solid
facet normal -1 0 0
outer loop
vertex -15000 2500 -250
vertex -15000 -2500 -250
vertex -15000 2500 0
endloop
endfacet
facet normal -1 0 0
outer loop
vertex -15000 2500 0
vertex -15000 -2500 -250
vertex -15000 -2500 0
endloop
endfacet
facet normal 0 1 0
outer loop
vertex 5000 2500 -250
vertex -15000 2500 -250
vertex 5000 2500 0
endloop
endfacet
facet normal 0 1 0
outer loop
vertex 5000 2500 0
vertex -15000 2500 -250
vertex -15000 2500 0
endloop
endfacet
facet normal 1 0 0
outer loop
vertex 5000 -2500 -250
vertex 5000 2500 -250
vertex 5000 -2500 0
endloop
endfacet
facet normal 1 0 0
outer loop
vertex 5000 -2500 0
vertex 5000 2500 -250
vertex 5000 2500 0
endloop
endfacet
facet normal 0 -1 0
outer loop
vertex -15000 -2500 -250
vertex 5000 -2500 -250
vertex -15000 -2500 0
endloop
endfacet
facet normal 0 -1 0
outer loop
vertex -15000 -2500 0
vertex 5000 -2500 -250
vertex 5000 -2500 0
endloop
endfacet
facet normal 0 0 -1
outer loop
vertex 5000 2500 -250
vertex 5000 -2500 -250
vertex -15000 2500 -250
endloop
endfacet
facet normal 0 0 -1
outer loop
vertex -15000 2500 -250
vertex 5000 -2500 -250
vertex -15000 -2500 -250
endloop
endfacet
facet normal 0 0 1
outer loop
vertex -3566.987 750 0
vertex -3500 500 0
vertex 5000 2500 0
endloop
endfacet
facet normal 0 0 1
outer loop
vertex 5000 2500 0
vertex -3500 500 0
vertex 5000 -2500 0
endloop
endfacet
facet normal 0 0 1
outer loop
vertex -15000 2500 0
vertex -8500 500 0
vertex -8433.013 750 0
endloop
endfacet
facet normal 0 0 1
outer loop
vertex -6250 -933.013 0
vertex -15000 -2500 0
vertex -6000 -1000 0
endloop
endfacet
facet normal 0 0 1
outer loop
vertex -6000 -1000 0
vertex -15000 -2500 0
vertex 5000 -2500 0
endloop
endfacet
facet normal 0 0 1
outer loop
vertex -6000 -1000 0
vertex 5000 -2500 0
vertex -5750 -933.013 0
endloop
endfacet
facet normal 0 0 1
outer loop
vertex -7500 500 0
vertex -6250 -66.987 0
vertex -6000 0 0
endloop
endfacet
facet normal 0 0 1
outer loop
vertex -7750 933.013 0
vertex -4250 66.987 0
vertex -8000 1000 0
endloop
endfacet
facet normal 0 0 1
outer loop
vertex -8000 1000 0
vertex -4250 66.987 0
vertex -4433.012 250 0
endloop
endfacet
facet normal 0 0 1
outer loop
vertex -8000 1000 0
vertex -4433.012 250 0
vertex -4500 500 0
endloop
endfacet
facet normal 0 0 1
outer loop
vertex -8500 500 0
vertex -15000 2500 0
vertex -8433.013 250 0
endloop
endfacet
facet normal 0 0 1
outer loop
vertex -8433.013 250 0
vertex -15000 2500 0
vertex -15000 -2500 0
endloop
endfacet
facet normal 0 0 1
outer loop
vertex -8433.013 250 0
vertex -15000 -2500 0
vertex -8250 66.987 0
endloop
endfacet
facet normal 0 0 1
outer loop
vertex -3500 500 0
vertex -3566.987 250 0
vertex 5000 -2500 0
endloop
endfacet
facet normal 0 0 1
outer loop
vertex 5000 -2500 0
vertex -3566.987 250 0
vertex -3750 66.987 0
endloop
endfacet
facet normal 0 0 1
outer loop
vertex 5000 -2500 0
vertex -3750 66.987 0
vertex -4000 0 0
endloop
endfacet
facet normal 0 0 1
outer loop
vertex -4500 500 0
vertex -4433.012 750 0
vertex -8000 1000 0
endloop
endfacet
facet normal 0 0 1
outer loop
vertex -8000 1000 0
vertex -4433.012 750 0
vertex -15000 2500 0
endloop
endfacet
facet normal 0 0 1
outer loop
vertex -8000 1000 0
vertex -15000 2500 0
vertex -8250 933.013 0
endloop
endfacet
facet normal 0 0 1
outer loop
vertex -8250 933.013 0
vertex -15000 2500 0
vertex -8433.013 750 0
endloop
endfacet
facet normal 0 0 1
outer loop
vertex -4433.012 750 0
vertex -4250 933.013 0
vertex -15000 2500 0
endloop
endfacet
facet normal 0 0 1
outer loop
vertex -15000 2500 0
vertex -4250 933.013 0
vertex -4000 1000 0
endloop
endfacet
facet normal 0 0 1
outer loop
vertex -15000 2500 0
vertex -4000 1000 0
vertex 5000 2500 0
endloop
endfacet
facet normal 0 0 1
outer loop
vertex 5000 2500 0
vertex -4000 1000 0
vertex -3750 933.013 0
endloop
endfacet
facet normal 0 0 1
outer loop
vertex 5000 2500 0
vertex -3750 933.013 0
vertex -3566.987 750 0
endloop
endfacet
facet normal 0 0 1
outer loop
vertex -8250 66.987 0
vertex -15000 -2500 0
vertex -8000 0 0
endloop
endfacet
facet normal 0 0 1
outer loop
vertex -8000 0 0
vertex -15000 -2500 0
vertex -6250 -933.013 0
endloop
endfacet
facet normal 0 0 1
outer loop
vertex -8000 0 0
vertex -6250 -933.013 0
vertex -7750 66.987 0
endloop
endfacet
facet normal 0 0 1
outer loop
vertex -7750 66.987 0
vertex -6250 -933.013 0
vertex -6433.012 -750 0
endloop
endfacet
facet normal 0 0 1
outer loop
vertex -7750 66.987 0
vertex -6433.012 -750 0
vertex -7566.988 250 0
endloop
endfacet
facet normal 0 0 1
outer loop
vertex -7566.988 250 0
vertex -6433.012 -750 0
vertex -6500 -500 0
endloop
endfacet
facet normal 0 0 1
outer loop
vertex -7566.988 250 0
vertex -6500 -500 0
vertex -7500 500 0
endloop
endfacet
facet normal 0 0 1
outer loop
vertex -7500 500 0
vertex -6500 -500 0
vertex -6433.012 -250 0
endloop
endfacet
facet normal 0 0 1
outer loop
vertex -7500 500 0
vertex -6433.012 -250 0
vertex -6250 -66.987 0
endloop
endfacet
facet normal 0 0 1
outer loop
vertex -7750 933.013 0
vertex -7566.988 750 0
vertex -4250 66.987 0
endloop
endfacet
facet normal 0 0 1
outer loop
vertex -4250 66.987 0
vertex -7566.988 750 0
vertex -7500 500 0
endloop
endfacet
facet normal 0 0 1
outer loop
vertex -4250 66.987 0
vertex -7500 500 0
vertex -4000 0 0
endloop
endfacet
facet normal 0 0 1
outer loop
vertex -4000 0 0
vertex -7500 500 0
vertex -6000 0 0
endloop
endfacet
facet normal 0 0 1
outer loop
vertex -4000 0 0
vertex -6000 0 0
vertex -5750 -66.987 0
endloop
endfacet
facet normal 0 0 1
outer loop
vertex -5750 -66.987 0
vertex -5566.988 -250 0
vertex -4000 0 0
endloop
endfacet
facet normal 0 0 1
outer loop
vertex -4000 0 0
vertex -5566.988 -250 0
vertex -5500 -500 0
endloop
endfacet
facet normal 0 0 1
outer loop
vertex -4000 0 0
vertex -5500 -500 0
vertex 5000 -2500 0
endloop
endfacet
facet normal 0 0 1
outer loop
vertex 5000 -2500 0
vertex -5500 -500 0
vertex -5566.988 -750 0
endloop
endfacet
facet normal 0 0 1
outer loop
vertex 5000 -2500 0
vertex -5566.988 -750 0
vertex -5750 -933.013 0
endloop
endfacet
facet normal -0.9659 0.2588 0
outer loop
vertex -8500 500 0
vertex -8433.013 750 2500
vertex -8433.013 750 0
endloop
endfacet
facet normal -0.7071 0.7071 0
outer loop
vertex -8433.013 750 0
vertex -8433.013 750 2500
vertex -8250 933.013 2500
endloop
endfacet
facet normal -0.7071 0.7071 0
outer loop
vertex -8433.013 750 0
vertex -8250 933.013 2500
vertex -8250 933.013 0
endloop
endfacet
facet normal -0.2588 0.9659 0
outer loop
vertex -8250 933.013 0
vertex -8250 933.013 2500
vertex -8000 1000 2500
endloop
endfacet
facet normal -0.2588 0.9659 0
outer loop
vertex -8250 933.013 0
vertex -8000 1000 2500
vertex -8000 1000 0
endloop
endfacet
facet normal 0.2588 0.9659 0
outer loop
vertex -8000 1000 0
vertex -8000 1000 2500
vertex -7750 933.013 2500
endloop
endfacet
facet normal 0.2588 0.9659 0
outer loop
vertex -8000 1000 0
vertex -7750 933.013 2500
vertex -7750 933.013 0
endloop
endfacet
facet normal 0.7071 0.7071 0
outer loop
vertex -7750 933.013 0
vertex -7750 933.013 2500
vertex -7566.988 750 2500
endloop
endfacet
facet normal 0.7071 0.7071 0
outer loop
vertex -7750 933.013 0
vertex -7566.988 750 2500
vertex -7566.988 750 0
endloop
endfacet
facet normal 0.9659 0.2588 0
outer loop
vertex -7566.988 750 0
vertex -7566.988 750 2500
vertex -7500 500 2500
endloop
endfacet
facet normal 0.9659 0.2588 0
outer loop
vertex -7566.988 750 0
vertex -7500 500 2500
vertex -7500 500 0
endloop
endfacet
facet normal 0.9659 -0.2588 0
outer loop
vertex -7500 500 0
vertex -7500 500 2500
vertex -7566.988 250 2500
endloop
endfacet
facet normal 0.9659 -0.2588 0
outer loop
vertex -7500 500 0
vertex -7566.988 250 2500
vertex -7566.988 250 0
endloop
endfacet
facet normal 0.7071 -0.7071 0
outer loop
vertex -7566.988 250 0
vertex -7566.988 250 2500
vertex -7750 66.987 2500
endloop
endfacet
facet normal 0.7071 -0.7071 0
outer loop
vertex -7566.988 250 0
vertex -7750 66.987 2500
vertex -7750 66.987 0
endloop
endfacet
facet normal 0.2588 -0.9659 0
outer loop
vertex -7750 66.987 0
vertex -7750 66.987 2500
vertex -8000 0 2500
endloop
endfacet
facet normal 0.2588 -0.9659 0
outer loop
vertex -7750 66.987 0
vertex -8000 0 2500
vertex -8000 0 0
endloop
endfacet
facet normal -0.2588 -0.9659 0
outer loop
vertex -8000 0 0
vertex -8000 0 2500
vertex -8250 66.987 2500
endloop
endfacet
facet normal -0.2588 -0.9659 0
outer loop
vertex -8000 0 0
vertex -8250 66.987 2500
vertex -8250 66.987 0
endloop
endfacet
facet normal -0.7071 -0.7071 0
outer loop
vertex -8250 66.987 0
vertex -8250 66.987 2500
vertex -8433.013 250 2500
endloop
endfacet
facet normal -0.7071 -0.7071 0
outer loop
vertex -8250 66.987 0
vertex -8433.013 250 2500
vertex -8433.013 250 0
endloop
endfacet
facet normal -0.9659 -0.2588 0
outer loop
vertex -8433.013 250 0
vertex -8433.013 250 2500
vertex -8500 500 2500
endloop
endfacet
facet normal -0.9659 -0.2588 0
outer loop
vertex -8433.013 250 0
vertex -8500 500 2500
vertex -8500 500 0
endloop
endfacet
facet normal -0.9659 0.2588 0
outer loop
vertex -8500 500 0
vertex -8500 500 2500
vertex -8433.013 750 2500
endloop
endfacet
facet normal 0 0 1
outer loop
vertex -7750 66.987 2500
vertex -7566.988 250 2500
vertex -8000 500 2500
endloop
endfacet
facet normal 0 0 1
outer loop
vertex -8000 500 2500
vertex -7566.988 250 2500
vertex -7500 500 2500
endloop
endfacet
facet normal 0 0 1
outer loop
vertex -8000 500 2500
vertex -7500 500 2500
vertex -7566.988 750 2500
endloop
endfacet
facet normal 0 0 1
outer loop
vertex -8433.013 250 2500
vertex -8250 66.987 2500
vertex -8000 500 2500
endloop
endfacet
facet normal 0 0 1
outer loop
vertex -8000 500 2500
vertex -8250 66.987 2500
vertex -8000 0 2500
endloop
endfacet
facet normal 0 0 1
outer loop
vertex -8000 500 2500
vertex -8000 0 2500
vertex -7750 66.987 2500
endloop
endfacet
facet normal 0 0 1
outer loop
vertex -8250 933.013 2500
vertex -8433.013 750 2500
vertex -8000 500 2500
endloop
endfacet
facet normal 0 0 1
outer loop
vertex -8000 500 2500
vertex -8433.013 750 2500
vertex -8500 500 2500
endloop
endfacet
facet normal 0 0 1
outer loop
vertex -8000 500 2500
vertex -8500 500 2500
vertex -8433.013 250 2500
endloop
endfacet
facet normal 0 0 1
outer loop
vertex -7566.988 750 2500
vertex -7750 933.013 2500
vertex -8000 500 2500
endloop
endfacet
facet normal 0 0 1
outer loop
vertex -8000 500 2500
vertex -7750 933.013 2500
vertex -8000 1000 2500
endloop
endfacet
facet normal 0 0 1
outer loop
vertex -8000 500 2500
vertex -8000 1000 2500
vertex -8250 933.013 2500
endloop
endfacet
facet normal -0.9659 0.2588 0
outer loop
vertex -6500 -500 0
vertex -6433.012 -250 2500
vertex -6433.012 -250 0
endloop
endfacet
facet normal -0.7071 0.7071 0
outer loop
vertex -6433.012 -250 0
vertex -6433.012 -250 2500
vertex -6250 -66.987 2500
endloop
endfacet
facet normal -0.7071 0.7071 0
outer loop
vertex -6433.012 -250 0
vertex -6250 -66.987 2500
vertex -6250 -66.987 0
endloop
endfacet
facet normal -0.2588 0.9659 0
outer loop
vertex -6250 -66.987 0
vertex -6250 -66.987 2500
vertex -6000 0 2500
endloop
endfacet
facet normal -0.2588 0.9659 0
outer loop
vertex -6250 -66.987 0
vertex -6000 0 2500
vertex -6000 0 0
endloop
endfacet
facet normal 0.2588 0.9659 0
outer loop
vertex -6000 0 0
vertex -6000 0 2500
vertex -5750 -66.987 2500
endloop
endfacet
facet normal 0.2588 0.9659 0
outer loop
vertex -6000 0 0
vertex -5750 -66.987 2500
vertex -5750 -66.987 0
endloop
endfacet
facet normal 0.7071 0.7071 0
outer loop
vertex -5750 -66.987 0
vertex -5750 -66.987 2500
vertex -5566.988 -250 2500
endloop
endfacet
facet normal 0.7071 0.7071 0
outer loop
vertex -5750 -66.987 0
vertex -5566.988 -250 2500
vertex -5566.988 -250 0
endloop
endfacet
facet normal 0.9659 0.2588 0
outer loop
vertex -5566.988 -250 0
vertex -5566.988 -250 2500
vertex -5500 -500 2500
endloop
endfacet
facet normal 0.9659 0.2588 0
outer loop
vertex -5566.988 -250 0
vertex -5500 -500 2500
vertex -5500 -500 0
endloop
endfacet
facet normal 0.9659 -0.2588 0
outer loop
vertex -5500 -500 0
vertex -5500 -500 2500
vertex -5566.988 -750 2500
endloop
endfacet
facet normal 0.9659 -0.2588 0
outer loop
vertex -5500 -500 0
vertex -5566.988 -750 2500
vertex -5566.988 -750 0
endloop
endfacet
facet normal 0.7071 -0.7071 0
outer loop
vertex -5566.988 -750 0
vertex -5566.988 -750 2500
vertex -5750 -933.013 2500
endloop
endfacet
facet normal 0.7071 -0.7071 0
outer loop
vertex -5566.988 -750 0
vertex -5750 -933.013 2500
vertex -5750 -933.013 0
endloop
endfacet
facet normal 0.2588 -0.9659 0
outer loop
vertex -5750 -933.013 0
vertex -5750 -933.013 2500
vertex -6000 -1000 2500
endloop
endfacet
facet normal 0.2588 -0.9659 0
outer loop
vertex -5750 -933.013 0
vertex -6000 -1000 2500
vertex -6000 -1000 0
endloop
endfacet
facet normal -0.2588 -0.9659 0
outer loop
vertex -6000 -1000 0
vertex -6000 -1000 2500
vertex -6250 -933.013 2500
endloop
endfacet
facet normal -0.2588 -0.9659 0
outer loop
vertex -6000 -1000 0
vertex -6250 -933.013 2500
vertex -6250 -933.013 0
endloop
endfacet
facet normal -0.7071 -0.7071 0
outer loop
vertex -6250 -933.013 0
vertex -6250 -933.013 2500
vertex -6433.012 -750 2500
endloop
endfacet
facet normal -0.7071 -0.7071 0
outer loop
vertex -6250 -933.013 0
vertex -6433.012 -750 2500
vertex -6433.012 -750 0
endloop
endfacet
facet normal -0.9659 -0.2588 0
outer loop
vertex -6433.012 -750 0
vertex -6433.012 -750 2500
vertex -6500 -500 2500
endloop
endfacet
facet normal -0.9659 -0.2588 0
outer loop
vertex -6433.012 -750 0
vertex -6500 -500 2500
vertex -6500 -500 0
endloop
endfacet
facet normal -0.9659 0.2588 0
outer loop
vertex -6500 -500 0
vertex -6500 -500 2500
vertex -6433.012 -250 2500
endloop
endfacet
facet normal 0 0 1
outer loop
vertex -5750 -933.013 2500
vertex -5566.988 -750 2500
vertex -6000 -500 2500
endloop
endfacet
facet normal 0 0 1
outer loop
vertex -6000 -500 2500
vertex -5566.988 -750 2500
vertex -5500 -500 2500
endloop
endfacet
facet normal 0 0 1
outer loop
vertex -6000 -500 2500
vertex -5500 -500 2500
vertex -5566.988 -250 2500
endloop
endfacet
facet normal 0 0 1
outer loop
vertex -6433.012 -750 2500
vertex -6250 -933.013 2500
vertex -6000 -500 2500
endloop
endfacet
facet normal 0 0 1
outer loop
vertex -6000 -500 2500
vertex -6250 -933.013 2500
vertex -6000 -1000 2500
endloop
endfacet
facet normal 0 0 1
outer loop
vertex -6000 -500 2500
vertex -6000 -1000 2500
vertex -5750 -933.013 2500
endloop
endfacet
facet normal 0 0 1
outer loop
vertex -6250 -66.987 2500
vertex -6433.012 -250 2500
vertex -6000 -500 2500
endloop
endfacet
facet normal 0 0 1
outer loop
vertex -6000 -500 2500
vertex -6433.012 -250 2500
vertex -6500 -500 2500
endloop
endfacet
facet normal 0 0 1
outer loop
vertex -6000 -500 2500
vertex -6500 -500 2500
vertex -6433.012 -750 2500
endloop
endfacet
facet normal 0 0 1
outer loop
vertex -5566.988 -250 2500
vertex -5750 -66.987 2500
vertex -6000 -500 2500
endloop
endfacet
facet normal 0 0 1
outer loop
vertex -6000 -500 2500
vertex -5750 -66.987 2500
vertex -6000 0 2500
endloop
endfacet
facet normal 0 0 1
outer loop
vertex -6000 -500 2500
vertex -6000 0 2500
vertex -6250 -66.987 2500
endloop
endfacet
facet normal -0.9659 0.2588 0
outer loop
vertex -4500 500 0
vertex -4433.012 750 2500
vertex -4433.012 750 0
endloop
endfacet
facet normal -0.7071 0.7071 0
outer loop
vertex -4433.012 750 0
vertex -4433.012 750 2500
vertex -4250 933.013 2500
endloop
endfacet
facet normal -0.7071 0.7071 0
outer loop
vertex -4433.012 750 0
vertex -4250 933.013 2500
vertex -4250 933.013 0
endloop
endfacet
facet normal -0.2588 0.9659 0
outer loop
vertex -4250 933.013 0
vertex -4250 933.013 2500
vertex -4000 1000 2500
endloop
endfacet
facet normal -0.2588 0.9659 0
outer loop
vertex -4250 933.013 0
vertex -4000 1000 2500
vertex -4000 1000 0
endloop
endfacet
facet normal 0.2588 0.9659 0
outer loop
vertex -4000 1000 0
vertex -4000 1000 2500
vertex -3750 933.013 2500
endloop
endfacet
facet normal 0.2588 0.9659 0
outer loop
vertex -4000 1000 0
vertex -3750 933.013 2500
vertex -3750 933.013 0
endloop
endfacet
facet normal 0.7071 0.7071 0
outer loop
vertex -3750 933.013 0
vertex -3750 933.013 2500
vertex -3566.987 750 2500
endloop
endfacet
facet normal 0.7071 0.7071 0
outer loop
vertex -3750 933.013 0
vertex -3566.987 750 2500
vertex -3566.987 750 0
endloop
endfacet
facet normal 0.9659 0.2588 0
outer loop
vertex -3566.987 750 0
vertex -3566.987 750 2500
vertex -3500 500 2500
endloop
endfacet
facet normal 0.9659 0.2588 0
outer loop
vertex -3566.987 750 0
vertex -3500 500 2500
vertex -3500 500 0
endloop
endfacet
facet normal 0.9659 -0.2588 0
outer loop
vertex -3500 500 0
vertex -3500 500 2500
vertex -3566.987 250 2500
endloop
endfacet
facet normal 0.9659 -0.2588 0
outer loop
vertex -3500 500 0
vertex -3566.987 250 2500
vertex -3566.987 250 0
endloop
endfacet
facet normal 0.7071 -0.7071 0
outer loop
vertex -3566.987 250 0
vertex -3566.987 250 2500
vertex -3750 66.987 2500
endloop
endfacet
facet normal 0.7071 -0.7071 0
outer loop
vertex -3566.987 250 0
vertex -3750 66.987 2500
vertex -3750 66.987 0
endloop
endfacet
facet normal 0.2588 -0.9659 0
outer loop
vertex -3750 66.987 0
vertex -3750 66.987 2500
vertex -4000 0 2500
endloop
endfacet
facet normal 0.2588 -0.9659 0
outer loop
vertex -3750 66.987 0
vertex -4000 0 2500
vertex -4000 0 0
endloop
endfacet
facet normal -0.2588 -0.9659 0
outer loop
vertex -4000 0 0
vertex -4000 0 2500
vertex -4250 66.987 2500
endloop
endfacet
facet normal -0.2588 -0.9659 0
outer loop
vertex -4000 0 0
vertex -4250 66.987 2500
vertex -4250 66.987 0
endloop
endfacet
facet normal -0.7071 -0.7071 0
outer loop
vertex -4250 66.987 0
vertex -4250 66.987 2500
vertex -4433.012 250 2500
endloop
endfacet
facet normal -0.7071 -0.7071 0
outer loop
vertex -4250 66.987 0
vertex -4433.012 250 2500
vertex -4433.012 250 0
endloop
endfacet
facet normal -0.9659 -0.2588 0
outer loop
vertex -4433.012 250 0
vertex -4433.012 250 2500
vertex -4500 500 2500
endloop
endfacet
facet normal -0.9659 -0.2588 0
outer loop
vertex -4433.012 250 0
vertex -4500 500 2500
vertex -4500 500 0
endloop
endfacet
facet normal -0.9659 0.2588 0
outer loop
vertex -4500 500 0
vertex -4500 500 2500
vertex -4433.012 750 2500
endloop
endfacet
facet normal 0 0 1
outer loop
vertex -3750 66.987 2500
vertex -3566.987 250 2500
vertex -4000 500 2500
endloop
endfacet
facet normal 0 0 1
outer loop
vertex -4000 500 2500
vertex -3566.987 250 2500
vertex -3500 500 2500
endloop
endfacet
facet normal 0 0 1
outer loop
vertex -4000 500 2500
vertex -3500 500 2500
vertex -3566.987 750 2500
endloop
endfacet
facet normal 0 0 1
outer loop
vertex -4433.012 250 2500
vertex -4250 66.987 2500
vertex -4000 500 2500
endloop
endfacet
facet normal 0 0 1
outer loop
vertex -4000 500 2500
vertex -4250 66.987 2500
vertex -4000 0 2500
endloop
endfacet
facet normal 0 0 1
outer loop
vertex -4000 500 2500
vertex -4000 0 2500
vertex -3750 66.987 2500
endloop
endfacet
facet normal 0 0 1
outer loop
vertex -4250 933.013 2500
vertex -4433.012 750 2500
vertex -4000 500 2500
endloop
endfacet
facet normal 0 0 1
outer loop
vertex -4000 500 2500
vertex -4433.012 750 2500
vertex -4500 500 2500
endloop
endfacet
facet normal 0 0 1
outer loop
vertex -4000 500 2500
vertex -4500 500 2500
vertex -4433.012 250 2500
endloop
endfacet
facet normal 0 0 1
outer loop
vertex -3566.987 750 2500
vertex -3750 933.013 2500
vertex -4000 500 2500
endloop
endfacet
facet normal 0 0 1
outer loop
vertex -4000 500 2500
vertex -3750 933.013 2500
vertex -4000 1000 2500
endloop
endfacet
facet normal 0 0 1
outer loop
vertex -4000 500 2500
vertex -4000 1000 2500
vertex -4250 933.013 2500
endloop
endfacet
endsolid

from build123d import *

# Parameters (mm, degrees)
SKETCH1_W           = 20000
SKETCH1_H           = 5000
BOSS_EXTRUDE1_DEPTH = 250
SKETCH2_R           = 500
BOSS_EXTRUDE2_DEPTH = 2500


with BuildPart() as part:
    # Sketch1 → Boss-Extrude1 (new body)
    with BuildSketch(Plane.XY):
        with Locations((-5000, 0)):
            Rectangle(SKETCH1_W, SKETCH1_H)
    extrude(amount=-BOSS_EXTRUDE1_DEPTH)

    # Sketch2 → Boss-Extrude2 (add)
    with BuildSketch(Plane.XY):
        with Locations(Location((-8000, 500, 0), (0, 0, 180))):
            Circle(SKETCH2_R)
        with Locations(Location((-6000, -500, 0), (0, 0, 180))):
            Circle(SKETCH2_R)
        with Locations(Location((-4000, 500, 0), (0, 0, 180))):
            Circle(SKETCH2_R)
    extrude(amount=BOSS_EXTRUDE2_DEPTH)


solid = part.part
